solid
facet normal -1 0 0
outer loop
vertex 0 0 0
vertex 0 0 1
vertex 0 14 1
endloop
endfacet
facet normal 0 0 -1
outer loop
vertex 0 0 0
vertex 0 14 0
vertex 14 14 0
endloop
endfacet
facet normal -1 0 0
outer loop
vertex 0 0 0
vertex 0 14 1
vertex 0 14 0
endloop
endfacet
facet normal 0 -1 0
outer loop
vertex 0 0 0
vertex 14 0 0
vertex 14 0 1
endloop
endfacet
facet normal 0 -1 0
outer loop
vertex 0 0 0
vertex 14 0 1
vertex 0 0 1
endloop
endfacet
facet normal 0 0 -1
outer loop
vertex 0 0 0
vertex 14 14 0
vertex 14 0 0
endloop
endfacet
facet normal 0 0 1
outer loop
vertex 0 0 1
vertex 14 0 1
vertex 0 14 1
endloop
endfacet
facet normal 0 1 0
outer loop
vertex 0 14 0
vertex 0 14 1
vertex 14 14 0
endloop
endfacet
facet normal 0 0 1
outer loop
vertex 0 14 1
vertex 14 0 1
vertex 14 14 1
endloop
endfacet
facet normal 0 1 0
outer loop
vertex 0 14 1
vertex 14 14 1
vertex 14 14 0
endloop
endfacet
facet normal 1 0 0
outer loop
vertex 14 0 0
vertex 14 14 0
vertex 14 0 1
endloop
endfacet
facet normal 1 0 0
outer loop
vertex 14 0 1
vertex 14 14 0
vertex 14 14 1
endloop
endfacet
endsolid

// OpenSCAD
/* Warning, this is a very basic generator with a lot of approximation 
input data : [TQFP, 4MB, 14x14x1mm, 100, , A, C04-21548A]
generated by com.zoubworld.electronics.cad.model3d.Basic
Date : Sun Feb 15 10:50:49 CET 2026
*/

//body
color("black")
translate([0,0,0])
cube([14.0,14.0,1.0], center=false);
